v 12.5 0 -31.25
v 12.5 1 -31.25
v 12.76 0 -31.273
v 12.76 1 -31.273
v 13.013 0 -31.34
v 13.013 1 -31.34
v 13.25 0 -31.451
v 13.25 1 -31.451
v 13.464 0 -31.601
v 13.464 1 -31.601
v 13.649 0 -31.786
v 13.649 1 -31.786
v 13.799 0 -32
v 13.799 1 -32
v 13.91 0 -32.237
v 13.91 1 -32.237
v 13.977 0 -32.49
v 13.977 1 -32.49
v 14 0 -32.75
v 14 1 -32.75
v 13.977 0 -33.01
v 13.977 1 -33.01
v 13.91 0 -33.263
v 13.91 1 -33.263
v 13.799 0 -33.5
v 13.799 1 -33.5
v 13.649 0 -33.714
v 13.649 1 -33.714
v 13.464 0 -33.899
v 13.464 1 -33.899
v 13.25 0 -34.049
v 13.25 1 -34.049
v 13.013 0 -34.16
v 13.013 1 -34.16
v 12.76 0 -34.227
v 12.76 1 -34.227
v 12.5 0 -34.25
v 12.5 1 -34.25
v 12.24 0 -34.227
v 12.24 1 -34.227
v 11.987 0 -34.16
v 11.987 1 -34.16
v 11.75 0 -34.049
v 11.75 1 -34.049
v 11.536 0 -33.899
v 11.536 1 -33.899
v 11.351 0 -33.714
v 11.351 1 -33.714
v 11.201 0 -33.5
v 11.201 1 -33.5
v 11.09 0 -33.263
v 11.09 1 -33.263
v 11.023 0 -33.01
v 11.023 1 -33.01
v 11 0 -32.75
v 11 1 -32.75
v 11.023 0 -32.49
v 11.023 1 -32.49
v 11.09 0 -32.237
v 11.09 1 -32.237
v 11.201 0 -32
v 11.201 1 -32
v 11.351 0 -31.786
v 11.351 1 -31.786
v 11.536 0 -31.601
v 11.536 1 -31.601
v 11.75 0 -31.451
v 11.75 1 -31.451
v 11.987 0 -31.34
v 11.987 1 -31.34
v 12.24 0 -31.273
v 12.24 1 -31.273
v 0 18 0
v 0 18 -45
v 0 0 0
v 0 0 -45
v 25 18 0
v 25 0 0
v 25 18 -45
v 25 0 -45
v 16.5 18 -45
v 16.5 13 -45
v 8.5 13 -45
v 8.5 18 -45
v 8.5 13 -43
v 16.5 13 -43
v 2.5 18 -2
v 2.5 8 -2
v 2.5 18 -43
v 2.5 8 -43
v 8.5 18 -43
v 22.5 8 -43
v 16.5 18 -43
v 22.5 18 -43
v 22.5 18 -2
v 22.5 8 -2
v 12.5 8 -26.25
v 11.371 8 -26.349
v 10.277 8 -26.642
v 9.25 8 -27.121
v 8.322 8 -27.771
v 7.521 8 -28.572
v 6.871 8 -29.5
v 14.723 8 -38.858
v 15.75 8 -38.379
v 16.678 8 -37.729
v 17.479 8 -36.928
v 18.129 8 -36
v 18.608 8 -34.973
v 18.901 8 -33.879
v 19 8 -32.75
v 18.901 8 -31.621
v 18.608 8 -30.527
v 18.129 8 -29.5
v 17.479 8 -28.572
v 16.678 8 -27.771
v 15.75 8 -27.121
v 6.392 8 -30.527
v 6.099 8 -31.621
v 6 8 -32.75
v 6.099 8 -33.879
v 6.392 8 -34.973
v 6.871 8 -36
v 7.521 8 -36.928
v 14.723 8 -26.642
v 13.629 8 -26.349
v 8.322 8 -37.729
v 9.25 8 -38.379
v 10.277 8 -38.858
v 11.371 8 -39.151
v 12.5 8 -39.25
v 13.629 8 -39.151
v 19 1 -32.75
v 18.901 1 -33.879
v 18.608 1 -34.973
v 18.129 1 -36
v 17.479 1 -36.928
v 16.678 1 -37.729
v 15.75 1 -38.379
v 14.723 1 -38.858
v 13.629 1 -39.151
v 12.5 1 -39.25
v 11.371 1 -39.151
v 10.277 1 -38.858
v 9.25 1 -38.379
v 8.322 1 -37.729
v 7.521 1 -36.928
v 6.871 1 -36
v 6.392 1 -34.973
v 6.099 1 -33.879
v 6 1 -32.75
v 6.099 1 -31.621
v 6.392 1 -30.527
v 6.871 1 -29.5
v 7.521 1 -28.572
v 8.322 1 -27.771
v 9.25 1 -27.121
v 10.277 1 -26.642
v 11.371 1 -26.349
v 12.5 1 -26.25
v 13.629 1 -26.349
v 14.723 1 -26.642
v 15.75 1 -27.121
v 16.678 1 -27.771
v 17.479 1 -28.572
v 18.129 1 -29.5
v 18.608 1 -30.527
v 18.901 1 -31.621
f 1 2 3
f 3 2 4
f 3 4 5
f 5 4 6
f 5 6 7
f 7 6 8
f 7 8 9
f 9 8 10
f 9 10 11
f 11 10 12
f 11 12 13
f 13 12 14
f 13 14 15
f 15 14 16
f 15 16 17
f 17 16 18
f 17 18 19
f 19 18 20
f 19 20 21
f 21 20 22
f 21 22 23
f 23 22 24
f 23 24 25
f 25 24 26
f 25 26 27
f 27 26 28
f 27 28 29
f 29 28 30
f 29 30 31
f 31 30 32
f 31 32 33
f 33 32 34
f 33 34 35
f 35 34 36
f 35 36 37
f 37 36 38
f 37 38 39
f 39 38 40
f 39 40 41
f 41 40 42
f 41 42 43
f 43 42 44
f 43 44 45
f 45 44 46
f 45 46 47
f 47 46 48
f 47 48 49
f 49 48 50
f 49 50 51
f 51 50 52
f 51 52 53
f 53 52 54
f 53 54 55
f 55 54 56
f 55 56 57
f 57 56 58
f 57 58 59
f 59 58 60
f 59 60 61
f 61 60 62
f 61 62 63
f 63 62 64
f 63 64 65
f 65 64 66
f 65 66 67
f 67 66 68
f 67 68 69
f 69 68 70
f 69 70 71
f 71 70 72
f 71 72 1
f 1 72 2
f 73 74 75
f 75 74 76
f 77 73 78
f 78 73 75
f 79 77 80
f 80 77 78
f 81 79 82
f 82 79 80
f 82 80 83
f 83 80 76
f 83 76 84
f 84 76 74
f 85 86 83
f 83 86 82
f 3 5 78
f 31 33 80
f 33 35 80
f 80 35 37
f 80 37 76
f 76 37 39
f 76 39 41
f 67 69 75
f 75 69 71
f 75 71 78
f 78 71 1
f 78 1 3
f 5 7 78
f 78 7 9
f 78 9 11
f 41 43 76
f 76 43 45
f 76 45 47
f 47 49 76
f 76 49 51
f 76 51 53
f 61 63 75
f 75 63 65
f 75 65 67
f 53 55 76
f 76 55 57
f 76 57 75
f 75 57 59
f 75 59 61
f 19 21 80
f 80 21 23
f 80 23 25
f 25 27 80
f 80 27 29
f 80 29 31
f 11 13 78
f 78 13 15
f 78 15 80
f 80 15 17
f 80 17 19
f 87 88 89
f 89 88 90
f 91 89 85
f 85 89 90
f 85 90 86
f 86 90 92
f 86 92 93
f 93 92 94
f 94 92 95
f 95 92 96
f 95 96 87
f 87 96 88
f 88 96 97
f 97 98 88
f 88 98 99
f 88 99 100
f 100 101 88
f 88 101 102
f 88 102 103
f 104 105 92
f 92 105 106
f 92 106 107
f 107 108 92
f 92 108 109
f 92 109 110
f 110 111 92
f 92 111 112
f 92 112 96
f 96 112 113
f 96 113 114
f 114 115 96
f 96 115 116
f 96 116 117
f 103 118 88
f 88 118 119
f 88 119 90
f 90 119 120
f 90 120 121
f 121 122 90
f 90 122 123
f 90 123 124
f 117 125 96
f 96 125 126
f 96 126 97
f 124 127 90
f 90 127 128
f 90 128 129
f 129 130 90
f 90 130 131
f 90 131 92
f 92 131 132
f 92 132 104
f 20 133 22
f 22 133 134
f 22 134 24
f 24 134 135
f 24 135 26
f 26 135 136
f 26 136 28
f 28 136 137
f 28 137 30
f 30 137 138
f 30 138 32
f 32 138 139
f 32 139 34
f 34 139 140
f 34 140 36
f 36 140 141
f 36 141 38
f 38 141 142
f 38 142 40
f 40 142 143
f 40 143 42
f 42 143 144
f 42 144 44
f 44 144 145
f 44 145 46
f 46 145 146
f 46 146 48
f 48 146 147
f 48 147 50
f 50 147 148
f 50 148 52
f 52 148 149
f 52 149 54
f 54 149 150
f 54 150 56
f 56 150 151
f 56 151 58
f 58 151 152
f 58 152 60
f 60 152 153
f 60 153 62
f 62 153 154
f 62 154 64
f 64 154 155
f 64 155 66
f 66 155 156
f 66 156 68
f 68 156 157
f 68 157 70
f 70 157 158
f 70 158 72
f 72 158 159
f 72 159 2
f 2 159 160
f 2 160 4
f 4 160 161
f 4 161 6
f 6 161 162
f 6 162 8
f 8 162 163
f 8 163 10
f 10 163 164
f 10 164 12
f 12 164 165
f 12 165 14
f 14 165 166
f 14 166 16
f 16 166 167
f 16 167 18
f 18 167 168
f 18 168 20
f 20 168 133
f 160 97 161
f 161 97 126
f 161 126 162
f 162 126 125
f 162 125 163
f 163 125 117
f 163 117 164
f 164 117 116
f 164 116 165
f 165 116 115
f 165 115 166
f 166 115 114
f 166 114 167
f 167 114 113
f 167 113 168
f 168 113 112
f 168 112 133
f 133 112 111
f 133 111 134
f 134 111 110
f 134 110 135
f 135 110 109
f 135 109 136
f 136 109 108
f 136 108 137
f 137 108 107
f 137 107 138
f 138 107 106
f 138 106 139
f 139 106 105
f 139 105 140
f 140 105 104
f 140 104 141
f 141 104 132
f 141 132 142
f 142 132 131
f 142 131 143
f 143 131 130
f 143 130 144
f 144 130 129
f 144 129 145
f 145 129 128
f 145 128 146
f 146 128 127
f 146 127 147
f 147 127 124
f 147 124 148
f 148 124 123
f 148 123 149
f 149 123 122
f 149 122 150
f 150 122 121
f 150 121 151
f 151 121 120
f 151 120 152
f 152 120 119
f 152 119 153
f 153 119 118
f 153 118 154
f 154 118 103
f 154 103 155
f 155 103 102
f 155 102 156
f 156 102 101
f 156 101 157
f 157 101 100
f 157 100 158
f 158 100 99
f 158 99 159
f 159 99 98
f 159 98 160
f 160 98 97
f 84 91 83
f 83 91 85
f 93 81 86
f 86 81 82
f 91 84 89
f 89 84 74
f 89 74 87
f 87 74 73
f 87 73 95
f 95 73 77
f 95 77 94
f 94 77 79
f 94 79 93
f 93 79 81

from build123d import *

# Parameters (mm, degrees)
SKETCH1_W          = 25
SKETCH1_H          = 45
BASE_DEPTH         = 13
SKETCH2_W          = 20
SKETCH2_H          = 41
SEAT_DEPTH         = 5
SKETCH3_R          = 1.5
SCREWHOLE_DEPTH    = 8
SKETCH4_R          = 6.5
SCREWINSET_DEPTH   = 7
SEATSECURITY_DEPTH = 5


with BuildPart() as part:
    # Sketch1 → Base (new body)
    with BuildSketch(Plane(origin=(0, 0, 0), x_dir=(1, 0, 0), z_dir=(0, 1, 0))):
        with Locations((12.5, 22.5)):
            Rectangle(SKETCH1_W, SKETCH1_H)
    extrude(amount=BASE_DEPTH)

    # Sketch2 → Seat (cut)
    with BuildSketch(Plane(origin=(0, 13, 0), x_dir=(1, 0, 0), z_dir=(0, 1, 0))):
        with Locations((12.5, 22.5)):
            Rectangle(SKETCH2_W, SKETCH2_H)
    extrude(amount=-SEAT_DEPTH, mode=Mode.SUBTRACT)

    # Sketch3 → ScrewHole (cut)
    with BuildSketch(Plane(origin=(0, 8, 0), x_dir=(1, 0, 0), z_dir=(0, 1, 0))):
        with Locations(Location((12.5, 32.75, 0), (0, 0, 270))):
            Circle(SKETCH3_R)
    extrude(amount=-SCREWHOLE_DEPTH, mode=Mode.SUBTRACT)

    # Sketch4 → ScrewInset (cut)
    with BuildSketch(Plane(origin=(0, 8, 0), x_dir=(1, 0, 0), z_dir=(0, 1, 0))):
        with Locations(Location((12.5, 32.75, 0), (0, 0, 270))):
            Circle(SKETCH4_R)
    extrude(amount=-SCREWINSET_DEPTH, mode=Mode.SUBTRACT)

    # Sketch6 → SeatSecurity (add)
    with BuildSketch(Plane(origin=(0, 13, 0), x_dir=(1, 0, 0), z_dir=(0, 1, 0))):
        Polygon((2.5, 2), (2.5, 43), (8.5, 43), (8.5, 45), (0, 45), (0, 0), (25, 0), (25, 45), (16.5, 45), (16.5, 43), (22.5, 43), (22.5, 2), align=None)
    extrude(amount=SEATSECURITY_DEPTH)


solid = part.part
